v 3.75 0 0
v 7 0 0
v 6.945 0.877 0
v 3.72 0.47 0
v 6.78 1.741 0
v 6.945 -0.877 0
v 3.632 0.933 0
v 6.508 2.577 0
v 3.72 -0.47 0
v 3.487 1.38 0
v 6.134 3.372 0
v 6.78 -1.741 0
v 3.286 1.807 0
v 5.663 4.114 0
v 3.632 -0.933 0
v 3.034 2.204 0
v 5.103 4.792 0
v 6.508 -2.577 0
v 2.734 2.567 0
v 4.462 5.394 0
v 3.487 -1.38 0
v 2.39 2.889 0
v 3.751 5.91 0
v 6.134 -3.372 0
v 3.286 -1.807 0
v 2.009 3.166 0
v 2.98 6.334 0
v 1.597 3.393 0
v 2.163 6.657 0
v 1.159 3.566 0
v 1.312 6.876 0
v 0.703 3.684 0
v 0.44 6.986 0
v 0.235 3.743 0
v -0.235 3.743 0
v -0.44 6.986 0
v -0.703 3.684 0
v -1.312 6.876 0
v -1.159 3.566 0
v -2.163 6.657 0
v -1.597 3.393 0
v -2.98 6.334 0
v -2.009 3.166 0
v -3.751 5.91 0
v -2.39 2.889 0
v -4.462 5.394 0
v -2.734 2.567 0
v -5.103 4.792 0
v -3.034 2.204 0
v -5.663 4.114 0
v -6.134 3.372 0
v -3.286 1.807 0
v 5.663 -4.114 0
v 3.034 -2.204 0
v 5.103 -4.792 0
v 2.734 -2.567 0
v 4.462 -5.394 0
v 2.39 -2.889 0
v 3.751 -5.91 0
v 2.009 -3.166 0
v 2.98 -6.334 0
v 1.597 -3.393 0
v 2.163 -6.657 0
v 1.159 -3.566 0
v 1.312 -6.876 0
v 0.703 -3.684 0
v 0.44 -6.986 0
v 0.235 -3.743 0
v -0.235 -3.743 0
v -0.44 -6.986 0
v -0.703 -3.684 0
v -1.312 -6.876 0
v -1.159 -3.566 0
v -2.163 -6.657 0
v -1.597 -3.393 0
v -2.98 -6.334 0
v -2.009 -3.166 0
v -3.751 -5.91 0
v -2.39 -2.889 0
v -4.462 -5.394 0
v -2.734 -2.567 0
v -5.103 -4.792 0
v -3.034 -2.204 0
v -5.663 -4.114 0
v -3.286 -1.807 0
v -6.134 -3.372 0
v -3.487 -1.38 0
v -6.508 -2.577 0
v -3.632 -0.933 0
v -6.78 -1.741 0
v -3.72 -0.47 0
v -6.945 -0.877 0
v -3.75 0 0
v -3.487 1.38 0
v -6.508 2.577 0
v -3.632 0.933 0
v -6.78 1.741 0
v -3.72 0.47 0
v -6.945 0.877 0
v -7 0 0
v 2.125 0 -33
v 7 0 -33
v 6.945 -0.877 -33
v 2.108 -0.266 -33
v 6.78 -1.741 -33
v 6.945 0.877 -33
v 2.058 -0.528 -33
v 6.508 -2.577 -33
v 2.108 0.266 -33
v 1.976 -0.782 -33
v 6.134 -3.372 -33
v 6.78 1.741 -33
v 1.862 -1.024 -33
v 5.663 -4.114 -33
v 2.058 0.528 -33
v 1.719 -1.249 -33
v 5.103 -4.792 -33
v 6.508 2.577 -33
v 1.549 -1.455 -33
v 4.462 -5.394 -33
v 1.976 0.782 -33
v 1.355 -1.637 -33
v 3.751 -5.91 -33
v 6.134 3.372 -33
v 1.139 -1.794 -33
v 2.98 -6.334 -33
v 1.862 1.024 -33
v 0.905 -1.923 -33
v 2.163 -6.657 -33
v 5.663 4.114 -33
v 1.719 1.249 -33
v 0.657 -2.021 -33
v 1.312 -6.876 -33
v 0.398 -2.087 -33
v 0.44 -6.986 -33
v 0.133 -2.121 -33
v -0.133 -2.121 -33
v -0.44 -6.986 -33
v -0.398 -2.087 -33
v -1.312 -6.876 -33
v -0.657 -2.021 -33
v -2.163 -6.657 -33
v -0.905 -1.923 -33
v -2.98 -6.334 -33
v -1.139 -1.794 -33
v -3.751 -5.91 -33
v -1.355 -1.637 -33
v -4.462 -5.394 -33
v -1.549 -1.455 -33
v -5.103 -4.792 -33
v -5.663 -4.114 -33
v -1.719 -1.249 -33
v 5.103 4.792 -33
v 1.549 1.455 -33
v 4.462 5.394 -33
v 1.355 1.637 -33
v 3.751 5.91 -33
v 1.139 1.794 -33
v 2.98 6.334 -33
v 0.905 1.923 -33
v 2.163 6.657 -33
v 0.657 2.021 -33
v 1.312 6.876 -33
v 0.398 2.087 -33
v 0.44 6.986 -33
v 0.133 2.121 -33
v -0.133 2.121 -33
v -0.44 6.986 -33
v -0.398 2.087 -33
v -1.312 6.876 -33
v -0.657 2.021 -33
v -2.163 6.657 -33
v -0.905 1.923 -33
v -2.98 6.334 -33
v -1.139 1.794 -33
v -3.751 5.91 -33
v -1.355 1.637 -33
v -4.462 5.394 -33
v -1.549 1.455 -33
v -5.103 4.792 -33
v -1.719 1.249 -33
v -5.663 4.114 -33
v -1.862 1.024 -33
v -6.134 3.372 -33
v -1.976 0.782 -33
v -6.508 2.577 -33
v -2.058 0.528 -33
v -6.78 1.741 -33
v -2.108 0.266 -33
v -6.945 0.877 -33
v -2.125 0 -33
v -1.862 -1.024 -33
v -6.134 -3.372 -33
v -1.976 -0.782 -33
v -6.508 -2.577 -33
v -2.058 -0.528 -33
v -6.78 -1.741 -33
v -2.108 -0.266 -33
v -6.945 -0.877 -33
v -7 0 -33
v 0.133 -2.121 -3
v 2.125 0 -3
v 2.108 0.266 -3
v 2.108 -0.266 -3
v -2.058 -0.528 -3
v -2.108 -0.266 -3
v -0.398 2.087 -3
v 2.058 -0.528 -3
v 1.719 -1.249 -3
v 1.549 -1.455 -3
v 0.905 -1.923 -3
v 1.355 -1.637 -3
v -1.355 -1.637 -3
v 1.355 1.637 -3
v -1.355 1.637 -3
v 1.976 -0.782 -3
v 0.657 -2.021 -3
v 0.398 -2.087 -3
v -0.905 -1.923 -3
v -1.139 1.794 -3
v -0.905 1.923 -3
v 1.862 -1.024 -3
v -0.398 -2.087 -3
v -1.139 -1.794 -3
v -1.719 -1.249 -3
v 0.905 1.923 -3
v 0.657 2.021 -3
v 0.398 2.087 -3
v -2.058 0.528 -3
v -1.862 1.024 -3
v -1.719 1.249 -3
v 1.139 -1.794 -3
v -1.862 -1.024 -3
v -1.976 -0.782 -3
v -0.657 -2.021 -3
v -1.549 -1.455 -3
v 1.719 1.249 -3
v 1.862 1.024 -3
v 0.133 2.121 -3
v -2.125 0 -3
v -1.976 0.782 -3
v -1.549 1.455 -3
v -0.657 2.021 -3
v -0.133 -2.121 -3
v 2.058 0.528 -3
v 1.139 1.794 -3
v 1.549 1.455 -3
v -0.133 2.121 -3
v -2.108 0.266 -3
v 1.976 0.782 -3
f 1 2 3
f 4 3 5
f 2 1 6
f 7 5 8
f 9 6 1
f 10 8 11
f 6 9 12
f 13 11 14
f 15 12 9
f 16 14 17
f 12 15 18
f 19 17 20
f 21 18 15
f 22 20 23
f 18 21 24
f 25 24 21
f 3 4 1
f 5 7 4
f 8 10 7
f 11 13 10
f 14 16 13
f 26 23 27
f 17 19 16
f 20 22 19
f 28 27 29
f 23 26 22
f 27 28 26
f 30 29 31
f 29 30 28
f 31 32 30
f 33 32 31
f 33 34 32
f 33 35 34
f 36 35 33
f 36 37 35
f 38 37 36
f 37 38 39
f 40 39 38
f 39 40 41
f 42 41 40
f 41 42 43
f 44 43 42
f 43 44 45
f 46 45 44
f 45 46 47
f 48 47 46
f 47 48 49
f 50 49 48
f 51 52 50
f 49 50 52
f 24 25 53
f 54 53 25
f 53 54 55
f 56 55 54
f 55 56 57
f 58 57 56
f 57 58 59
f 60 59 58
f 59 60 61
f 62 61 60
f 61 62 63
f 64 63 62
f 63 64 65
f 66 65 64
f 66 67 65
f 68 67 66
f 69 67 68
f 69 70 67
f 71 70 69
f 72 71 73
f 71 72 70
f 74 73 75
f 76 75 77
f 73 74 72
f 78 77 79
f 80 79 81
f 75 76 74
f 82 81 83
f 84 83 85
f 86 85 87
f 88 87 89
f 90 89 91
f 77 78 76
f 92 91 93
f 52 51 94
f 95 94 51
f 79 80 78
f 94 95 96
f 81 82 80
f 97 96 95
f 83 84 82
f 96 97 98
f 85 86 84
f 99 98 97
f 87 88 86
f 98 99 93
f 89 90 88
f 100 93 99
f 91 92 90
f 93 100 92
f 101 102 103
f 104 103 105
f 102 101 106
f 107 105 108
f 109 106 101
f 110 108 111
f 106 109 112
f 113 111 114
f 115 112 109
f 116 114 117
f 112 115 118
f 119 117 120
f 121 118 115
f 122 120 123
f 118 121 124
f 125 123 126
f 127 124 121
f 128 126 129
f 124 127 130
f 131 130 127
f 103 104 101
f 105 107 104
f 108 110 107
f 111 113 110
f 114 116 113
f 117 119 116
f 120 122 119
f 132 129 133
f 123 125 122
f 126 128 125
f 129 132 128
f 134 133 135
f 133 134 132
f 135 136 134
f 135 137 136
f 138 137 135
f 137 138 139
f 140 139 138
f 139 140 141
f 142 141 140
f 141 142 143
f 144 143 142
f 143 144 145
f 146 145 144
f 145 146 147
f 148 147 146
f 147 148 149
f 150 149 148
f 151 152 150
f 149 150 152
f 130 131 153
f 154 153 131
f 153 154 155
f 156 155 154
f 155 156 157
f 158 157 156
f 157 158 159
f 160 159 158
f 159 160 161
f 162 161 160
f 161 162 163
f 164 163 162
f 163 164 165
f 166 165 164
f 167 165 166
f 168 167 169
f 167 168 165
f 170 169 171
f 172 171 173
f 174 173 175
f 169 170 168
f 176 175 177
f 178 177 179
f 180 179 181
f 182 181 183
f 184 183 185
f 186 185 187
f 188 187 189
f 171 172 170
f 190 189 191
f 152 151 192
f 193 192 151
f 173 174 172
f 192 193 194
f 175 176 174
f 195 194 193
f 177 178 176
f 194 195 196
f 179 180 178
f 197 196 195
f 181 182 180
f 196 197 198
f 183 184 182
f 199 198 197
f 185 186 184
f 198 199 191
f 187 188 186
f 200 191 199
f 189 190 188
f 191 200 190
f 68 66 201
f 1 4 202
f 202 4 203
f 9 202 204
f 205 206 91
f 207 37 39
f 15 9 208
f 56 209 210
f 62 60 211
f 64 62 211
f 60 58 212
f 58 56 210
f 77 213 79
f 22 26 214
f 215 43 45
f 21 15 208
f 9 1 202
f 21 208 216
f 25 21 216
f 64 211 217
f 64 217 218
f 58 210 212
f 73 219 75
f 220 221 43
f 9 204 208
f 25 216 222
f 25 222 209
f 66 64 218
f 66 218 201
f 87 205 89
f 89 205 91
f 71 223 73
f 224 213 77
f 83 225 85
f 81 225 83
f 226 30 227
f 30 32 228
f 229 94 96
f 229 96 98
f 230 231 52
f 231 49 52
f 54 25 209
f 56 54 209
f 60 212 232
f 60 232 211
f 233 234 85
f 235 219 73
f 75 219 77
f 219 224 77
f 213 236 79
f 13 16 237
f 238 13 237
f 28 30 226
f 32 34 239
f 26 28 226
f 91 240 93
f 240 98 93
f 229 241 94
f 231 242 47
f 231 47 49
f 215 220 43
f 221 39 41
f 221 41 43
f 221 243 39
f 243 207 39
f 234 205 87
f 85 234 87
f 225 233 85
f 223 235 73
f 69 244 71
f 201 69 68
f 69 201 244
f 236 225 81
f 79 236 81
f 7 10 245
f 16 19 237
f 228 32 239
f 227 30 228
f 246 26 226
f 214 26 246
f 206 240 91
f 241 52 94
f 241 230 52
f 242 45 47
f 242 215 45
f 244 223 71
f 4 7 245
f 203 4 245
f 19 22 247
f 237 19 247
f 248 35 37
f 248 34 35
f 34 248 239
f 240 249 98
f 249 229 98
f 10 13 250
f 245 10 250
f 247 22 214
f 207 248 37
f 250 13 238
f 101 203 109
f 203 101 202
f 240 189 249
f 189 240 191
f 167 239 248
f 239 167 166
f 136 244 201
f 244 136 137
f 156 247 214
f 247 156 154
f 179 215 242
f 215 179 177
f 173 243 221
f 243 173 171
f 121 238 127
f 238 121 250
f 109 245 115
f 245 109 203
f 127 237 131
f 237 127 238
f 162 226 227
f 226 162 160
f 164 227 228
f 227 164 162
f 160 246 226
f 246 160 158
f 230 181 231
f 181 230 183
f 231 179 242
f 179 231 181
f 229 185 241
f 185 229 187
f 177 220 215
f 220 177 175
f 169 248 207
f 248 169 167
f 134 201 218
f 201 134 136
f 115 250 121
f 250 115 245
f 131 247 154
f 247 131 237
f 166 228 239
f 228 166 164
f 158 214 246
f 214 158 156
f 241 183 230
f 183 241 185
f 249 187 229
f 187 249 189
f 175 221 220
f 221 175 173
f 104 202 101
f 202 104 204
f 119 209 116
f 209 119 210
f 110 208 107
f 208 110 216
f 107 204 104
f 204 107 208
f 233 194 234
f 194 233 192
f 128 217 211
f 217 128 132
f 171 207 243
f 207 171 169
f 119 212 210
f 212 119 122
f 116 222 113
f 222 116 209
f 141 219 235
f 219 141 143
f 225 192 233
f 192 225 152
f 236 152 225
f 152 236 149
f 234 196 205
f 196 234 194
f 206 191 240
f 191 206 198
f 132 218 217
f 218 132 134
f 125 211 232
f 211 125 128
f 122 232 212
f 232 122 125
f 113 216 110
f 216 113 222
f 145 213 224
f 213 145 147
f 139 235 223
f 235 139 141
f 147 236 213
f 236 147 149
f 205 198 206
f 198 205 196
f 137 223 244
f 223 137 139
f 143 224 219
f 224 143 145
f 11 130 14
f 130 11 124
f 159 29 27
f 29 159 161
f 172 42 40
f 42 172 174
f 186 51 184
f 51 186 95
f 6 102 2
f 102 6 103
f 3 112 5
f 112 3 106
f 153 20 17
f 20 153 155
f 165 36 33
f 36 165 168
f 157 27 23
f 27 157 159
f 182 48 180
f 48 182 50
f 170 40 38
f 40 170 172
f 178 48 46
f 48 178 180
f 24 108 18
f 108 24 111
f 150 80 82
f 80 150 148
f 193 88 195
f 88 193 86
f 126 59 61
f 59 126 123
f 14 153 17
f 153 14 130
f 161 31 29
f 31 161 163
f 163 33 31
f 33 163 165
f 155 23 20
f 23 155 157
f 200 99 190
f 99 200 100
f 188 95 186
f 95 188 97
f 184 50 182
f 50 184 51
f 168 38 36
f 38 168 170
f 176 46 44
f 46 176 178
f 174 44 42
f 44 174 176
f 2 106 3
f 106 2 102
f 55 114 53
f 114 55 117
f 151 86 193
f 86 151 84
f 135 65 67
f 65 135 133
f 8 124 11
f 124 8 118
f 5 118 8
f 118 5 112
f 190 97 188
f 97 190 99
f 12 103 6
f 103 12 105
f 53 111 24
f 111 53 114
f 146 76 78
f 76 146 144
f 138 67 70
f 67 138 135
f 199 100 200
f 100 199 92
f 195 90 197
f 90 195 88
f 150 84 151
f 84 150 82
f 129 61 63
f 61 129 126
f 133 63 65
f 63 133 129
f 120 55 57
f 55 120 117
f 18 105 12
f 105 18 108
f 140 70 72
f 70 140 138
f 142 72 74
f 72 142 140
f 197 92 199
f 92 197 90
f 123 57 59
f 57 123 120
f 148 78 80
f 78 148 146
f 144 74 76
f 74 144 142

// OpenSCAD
$fn = 50;


difference() {
	union() {
		translate(v = [0, 0, -33.0000000000]) {
			cylinder(h = 33, r = 7.0000000000);
		}
	}
	union() {
		translate(v = [0, 0, 0]) {
			rotate(a = [0, 0, 0]) {
				difference() {
					union() {
						#translate(v = [0, 0, -33.0000000000]) {
							cylinder(h = 33, r = 2.0000000000);
						}
						#translate(v = [0, 0, -3]) {
							cylinder(h = 3, r1 = 2.1250000000, r2 = 3.7500000000);
						}
						#translate(v = [0, 0, -33.0000000000]) {
							cylinder(h = 33, r = 2.1250000000);
						}
						#translate(v = [0, 0, -33.0000000000]) {
							cylinder(h = 33, r = 2.0000000000);
						}
					}
					union();
				}
			}
		}
	}
}
